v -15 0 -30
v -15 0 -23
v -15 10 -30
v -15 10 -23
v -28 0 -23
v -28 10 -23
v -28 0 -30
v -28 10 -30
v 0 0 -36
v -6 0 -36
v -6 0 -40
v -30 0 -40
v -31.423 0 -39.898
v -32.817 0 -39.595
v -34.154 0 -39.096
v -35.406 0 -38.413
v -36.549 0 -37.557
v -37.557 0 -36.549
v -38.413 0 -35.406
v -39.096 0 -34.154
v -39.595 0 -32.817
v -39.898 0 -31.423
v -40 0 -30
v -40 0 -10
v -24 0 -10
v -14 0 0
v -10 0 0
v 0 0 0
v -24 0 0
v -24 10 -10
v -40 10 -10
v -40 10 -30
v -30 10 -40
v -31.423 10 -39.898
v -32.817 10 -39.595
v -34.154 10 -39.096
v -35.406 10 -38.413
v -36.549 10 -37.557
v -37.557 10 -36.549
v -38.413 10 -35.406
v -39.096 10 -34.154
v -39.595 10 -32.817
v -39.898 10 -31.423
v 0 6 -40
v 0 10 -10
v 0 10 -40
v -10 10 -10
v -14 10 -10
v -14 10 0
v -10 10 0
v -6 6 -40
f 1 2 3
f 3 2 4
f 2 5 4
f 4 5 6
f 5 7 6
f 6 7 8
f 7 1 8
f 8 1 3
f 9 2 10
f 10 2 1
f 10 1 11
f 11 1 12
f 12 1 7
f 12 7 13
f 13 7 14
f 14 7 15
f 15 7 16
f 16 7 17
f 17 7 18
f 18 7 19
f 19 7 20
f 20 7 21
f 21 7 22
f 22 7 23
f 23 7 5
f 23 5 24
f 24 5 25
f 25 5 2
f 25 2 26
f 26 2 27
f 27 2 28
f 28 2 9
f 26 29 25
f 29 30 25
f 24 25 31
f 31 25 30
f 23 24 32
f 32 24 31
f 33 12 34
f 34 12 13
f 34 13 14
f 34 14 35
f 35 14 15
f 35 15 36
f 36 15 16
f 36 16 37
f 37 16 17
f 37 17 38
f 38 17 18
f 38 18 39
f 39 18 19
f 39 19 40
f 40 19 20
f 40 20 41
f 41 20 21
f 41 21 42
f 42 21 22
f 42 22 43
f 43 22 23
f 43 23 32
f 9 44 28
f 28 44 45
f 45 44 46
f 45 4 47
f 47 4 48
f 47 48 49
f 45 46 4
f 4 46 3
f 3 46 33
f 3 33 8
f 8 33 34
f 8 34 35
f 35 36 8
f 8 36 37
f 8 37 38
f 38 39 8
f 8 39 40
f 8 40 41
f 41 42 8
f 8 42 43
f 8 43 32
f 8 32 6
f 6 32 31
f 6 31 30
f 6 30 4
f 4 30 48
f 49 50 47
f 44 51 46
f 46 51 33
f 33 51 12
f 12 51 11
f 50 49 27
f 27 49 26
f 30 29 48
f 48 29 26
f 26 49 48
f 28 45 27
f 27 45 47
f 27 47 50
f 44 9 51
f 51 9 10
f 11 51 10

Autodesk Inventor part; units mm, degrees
ref_plane "YZ Plane" through (0, 0, 0) normal (1, 0, 0) x (0, 1, 0)
ref_plane "XZ Plane" through (0, 0, 0) normal (0, 1, 0) x (-1, 0, 0)
ref_plane "XY Plane" through (0, 0, 0) normal (0, 0, 1) x (1, 0, 0)
sketch "Sketch1" plane through (0, 0, 0) normal (0, 1, 0) x (-1, 0, 0)
  line L0 (0, 0) -> (10, 0)
  line L1 (10, 0) -> (14, 0)
  line L2 (14, 0) -> (24, 0)
  line L3 (24, 0) -> (24, -10)
  line L4 (24, -10) -> (40, -10)
  line L5 (0, 0) -> (0, -40)
  line L6 (0, -40) -> (30, -40)
  line L7 (40, -30) -> (40, -10)
  arc A0 (30, -40) -> (40, -30) centre (30, -30) ccw
  line L8 (28, -30) -> (15, -30)
  line L9 (15, -30) -> (15, -23)
  line L10 (15, -23) -> (28, -23)
  line L11 (28, -23) -> (28, -30)
  dimension "d0" = 10
  dimension "d1" = 4
  dimension "d2" = 10
  dimension "d3" = 10
  dimension "d4" = 16
  dimension "d5" = 40
  dimension "d6" = 10
  dimension "d7" = 13
  dimension "d8" = 7
  dimension "d9" = 13
  dimension "d10" = 12
extrude "Extrusion1" add sketch "Sketch1" along normal blind 10
sketch "Sketch2" plane through (-24, 0, -10) normal (-1, 0, 0) x (0, 0, 1)
  line L0 (0, 0) -> (0, 10) projected
  line L1 (-30, 0) -> (10, 0) projected
  line L2 (0, 10) -> (10, 0)
  line L3 (10, 0) -> (10, 10)
  line L4 (10, 10) -> (0, 10)
extrude "Extrusion2" cut sketch "Sketch2" against normal blind 10 contours L4 L3 L2
sketch "Sketch3" plane through (0, 0, 0) normal (1, 0, 0) x (0, 0, -1)
  line L0 (0, 0) -> (10, 10) projected
  line L1 (0, 0) -> (0, 10) projected
  line L2 (30, 10) -> (10, 10) projected
  line L3 (0, 0) -> (10, 10)
  line L4 (10, 10) -> (0, 10)
  line L5 (0, 10) -> (0, 0)
extrude "Extrusion3" cut sketch "Sketch3" against normal blind 10
sketch "Sketch4" plane through (0, 0, -40) normal (1, 0, 0) x (0, 0, -1)
  line L0 (0, 0) -> (-4, 0)
  line L1 (-10, 0) -> (0, 0) projected
  line L2 (0, 0) -> (0, 10) projected
  line L3 (0, 10) -> (0, 6)
  line L4 (0, 6) -> (-4, 0)
  line L5 (0, 6) -> (0, 0)
  point P0 (-40, 0)
  dimension "d17" = 4
  dimension "d18" = 4
extrude "Extrusion4" cut sketch "Sketch4" against normal blind 6
properties part number "T2 Part I"
